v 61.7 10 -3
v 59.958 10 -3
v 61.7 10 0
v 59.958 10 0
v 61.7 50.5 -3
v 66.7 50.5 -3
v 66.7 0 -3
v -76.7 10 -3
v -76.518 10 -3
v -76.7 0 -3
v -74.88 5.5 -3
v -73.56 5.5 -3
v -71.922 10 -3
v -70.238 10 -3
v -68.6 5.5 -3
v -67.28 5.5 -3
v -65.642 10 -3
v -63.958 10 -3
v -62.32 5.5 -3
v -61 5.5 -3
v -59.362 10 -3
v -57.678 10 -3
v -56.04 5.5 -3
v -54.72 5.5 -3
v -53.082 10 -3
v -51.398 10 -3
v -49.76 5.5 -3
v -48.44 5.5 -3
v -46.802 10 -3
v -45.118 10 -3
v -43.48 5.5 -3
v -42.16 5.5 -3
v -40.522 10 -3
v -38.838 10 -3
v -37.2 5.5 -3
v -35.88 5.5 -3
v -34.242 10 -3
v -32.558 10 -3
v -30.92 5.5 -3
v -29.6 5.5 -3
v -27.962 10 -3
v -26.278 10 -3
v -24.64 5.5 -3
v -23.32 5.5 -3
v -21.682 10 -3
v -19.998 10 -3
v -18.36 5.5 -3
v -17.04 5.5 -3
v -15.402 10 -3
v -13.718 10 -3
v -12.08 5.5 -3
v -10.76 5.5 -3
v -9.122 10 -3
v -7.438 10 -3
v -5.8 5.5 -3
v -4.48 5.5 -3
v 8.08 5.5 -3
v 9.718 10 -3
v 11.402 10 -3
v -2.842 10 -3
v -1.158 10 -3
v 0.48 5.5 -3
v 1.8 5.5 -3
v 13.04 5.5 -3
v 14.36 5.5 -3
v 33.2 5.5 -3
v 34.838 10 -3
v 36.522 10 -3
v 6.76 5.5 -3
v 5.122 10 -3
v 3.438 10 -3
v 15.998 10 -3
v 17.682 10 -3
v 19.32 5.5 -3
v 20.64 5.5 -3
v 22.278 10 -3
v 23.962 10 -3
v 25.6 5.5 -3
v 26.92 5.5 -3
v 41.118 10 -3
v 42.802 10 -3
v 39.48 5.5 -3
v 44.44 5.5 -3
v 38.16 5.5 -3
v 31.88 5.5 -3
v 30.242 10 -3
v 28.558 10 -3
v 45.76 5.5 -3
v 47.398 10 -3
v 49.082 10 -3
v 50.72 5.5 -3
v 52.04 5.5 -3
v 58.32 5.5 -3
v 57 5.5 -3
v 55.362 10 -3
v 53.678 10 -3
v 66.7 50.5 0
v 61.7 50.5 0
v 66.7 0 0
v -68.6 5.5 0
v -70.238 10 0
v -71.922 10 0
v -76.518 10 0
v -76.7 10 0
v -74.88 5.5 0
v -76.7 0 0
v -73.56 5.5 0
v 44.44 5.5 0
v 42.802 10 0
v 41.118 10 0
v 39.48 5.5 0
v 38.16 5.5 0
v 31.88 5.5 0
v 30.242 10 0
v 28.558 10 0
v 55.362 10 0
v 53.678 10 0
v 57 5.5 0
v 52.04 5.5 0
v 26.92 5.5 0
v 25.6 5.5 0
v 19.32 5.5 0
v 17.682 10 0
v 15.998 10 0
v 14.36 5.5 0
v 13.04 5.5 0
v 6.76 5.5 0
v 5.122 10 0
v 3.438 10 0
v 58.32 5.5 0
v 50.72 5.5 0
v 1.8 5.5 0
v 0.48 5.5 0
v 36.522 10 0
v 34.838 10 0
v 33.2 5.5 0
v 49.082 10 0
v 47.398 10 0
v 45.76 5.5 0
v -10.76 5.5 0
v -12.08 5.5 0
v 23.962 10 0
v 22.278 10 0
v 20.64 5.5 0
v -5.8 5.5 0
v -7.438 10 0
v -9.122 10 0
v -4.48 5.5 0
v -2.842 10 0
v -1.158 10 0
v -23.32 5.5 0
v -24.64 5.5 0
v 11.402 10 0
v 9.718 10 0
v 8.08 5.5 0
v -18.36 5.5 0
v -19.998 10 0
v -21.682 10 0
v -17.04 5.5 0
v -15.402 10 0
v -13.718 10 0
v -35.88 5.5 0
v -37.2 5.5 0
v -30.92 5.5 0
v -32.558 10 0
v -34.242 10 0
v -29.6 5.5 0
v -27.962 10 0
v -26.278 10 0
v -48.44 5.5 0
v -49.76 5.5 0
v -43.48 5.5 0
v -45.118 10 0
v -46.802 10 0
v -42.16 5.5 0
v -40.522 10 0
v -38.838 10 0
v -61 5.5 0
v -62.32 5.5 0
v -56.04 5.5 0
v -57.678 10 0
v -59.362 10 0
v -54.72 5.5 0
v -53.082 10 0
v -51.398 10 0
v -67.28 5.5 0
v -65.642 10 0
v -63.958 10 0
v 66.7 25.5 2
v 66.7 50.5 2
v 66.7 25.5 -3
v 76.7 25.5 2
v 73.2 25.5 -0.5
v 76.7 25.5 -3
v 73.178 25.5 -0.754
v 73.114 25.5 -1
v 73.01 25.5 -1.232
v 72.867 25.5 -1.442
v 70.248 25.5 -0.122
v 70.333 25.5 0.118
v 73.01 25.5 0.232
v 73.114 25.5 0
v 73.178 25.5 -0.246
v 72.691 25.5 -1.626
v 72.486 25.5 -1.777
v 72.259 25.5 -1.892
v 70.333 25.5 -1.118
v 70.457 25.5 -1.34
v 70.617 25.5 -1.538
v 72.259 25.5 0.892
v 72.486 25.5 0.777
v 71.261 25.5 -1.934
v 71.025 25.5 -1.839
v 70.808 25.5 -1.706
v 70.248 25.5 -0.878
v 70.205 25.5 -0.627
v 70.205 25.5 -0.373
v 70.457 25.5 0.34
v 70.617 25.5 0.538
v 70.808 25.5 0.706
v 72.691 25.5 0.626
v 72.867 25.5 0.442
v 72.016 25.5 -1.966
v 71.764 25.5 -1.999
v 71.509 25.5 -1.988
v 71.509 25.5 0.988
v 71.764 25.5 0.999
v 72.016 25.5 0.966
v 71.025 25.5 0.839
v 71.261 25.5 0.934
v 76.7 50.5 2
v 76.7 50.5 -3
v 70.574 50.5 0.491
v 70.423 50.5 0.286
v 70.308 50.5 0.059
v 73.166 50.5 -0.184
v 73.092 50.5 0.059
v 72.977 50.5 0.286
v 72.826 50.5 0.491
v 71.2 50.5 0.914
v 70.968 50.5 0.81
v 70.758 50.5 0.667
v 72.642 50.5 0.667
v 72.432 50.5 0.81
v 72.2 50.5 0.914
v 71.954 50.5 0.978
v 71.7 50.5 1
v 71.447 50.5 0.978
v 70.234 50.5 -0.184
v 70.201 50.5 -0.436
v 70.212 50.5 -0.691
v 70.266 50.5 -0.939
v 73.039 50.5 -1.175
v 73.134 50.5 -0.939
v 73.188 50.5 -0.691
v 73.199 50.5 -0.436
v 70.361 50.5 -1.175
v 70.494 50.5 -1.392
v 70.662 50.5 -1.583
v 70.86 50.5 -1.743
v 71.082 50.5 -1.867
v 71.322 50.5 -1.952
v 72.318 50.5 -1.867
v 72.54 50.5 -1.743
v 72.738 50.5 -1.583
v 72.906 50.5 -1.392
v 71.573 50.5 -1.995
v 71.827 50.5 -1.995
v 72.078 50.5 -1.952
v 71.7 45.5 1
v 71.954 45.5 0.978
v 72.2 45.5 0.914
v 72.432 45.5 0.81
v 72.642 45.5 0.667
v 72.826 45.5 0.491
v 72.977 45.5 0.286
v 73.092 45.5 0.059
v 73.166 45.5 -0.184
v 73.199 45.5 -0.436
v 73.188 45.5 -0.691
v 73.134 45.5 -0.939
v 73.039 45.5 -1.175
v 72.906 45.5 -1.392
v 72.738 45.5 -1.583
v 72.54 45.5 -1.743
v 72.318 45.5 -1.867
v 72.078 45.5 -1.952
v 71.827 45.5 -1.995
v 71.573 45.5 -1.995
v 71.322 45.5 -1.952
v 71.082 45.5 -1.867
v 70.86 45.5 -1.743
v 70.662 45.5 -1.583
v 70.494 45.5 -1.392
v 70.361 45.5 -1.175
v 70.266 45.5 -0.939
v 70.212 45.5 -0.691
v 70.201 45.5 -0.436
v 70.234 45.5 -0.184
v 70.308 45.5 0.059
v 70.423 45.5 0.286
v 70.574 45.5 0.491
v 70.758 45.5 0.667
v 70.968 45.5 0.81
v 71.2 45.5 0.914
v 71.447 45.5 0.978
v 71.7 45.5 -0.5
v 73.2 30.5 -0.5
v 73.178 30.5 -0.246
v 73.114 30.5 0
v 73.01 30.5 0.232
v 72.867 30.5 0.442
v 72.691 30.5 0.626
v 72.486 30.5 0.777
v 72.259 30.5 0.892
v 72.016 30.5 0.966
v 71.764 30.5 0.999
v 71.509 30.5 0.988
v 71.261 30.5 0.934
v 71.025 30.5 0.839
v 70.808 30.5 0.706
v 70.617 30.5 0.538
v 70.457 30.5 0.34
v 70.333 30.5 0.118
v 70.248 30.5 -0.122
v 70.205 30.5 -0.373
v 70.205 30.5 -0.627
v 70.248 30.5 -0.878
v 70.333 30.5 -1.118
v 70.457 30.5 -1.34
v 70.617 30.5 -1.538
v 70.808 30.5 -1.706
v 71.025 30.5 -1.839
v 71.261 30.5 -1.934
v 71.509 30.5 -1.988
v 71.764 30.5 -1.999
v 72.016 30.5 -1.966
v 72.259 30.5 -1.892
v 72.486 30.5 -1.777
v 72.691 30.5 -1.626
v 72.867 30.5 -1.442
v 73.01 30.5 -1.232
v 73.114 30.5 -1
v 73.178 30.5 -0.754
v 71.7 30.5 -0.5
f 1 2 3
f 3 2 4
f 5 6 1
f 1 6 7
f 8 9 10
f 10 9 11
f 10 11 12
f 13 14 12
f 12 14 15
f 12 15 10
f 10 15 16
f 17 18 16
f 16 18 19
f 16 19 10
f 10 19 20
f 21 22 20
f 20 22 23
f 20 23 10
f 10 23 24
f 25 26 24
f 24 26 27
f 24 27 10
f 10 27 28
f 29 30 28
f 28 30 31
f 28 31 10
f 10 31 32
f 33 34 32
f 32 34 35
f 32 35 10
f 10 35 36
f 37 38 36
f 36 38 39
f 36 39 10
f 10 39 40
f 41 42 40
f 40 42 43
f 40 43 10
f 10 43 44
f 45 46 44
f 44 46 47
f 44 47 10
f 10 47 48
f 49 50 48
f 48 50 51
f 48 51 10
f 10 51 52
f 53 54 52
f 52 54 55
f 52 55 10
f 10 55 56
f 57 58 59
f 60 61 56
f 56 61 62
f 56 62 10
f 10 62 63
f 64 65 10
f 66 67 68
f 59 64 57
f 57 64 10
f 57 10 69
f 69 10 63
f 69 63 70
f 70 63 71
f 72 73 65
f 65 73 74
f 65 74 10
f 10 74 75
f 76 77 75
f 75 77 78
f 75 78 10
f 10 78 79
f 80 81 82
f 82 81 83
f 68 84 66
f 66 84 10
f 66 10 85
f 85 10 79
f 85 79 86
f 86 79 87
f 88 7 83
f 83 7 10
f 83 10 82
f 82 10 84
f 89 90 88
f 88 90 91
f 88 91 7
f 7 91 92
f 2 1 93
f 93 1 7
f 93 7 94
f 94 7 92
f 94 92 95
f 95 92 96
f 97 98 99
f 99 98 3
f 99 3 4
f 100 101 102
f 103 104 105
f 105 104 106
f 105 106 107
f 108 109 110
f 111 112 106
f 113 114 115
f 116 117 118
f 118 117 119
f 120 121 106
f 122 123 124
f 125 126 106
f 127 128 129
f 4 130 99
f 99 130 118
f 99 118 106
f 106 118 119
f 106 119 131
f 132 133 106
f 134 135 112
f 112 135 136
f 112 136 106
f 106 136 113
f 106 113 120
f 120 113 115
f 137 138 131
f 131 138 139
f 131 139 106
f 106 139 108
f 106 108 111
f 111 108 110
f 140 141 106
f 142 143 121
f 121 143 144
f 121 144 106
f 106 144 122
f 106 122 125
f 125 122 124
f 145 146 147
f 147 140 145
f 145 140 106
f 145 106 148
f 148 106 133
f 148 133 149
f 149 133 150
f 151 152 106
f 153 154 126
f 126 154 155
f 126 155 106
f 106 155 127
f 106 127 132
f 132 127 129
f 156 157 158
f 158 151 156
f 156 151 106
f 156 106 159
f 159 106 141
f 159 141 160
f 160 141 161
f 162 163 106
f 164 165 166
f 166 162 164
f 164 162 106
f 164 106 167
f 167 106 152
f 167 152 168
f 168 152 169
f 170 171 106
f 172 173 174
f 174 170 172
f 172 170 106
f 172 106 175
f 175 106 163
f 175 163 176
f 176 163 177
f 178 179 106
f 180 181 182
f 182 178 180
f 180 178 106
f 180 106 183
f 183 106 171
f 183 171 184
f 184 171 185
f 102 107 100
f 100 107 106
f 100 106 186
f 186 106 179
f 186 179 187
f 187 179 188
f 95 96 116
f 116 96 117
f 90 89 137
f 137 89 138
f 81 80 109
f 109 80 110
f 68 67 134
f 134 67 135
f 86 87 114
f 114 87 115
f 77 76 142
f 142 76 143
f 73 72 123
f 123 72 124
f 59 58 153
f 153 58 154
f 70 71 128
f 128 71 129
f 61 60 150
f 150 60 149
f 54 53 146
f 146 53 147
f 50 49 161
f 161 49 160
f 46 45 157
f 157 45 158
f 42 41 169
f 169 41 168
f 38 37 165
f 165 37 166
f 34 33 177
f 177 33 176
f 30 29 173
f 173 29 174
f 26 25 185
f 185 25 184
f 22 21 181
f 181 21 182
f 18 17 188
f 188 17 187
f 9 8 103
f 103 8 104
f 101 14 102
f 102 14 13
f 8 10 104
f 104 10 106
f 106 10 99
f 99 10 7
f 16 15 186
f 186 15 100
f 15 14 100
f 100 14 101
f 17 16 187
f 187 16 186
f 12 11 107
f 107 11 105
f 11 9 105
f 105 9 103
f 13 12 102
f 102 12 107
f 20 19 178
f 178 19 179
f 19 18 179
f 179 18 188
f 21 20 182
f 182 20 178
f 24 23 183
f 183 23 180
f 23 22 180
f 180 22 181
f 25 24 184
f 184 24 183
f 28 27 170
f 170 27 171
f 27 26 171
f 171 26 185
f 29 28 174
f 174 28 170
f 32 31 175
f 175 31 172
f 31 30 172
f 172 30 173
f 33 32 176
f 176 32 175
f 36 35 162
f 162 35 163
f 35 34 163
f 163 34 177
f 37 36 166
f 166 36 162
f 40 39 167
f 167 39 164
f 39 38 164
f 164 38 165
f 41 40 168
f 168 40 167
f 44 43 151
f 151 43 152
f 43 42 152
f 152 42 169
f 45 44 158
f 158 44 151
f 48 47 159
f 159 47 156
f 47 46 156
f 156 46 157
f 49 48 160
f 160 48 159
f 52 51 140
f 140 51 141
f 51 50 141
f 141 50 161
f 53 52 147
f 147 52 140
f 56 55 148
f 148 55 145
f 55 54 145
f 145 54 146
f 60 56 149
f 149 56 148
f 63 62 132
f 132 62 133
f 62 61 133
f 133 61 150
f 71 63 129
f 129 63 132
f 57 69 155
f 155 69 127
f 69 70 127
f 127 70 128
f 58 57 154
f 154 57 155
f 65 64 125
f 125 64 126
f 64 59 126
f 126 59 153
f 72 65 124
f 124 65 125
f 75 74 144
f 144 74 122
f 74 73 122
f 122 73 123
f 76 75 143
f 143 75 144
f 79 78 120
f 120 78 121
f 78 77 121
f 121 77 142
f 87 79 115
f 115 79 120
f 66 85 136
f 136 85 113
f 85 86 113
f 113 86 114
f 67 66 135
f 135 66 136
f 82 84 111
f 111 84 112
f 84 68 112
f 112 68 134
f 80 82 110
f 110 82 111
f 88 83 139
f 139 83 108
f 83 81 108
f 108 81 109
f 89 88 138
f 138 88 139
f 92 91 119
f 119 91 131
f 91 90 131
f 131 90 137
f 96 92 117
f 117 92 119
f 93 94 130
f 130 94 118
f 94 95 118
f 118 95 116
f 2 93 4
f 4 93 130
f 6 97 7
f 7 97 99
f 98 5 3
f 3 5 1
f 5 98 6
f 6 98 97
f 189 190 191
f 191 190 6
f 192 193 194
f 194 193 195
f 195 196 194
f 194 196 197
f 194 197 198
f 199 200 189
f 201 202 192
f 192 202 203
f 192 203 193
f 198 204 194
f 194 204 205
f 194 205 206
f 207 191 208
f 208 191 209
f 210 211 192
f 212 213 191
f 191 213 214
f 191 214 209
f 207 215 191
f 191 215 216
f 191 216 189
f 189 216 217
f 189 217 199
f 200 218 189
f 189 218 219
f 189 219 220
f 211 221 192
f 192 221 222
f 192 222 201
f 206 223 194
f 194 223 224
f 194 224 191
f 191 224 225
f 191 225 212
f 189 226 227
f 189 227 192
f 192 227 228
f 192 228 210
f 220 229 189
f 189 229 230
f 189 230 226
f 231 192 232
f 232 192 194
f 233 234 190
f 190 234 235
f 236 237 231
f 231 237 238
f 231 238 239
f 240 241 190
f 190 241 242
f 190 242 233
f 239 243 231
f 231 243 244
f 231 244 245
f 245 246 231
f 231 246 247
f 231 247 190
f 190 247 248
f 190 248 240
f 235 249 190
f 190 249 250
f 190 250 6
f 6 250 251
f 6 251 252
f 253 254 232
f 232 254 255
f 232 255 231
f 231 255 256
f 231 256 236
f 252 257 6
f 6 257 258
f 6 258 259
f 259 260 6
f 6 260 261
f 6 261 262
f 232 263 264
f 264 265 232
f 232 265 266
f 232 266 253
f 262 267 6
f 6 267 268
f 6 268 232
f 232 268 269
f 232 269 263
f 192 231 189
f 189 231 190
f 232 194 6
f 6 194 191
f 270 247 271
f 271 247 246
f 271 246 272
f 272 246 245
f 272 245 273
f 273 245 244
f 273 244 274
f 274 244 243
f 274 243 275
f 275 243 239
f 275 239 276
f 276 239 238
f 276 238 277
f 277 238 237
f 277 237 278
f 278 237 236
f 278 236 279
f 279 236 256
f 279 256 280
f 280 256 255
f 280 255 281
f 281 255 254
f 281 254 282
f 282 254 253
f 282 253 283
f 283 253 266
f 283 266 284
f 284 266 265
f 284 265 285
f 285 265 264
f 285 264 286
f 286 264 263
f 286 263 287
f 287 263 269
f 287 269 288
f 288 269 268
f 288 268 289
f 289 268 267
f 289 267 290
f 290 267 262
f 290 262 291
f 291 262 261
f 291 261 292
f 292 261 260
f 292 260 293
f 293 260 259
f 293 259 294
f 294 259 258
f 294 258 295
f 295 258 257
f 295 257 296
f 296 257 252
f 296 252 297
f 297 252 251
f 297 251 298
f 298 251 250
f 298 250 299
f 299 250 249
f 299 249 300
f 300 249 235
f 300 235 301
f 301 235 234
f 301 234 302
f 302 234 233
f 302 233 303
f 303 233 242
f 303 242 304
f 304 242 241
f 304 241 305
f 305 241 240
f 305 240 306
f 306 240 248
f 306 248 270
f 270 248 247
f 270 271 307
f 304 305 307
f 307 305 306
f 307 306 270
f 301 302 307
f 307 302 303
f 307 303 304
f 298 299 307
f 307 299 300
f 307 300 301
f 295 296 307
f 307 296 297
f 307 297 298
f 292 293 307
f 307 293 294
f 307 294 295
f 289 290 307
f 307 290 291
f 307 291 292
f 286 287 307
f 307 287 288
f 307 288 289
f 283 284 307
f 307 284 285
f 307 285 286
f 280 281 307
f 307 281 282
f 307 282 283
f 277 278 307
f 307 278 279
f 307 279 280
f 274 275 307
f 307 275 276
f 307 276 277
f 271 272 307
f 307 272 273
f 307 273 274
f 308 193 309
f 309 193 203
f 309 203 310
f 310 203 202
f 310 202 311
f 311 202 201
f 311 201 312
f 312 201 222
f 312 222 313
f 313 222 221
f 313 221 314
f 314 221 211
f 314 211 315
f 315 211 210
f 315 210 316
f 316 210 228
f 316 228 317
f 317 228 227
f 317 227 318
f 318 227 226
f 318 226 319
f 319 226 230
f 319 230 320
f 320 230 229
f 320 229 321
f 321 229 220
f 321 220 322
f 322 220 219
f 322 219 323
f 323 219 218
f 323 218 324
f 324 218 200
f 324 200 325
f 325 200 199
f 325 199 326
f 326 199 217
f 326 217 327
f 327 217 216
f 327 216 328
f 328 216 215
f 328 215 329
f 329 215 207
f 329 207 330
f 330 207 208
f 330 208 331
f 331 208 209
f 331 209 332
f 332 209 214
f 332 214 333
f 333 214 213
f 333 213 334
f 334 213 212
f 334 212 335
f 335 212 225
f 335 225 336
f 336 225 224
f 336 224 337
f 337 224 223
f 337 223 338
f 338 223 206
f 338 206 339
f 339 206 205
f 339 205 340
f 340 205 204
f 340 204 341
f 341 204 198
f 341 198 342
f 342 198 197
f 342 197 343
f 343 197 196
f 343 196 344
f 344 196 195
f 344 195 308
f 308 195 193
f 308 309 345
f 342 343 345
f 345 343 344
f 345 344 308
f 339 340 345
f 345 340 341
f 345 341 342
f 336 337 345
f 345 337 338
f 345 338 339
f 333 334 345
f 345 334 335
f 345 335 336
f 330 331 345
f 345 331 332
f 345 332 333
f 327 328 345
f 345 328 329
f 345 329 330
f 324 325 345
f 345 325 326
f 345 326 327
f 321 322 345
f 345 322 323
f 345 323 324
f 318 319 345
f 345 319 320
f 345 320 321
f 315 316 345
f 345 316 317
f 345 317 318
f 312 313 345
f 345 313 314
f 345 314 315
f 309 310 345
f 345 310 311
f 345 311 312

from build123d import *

# Parameters (mm, degrees)
SKETCH_1_W                 = 153.4
SKETCH_1_H                 = 10
EXTRUDE_1_DEPTH            = 3
CUT_EXTRUDE_1_DEPTH        = 4
PATTERN_LINEAR_1_COUNT     = 21
PATTERN_LINEAR_1_PITCH     = 6.28
PATTERN_LINEAR_1_COL_COUNT = 2
PATTERN_LINEAR_1_COL_PITCH = 6.28
SKETCH_3_W                 = 10
SKETCH_3_H                 = 3
CUT_EXTRUDE_2_DEPTH        = 11
SKETCH_4_W                 = 5
SKETCH_4_H                 = 3
EXTRUDE_2_DEPTH            = 40.5
SKETCH_5_W                 = 10
SKETCH_5_H                 = 25
EXTRUDE_3_DEPTH            = 5
SKETCH_6_R                 = 1.5
CUT_EXTRUDE_3_DEPTH        = 5
SKETCH_7_R                 = 1.5
CUT_EXTRUDE_4_DEPTH        = 5


with BuildPart() as part:
    # 스케치1 → 보스-돌출1 (new body)
    with BuildSketch(Plane.XY):
        with Locations((0, 5)):
            Rectangle(SKETCH_1_W, SKETCH_1_H)
    extrude(amount=-EXTRUDE_1_DEPTH)

    # 스케치2 → 컷-돌출1 (cut, through all)
    with BuildSketch(Plane.XY):
        Polygon((-68.600074414, 5.5), (-67.279925586, 5.5), (-65.642059531, 10), (-70.237940469, 10), align=None)
    cut_extrude_1 = extrude(amount=-CUT_EXTRUDE_1_DEPTH, mode=Mode.SUBTRACT)

    # 선형 패턴1: 컷-돌출1 ×21
    with Locations(*[(i * PATTERN_LINEAR_1_PITCH, 0, 0) for i in range(1, PATTERN_LINEAR_1_COUNT)]):
        add(cut_extrude_1, mode=Mode.SUBTRACT)

    # 선형 패턴1 col: 컷-돌출1 ×2
    with Locations(*[(-i * PATTERN_LINEAR_1_COL_PITCH, 0, 0) for i in range(1, PATTERN_LINEAR_1_COL_COUNT)]):
        add(cut_extrude_1, mode=Mode.SUBTRACT)

    # 스케치3 → 컷-돌출2 (cut, through all)
    with BuildSketch(Plane.XZ):
        with Locations((71.7, -1.5)):
            Rectangle(SKETCH_3_W, SKETCH_3_H)
    extrude(amount=-CUT_EXTRUDE_2_DEPTH, mode=Mode.SUBTRACT)

    # 스케치4 → 보스-돌출2 (add)
    with BuildSketch(Plane(origin=(0, 10, 0), x_dir=(1, 0, 0), z_dir=(0, 1, 0))):
        with Locations((64.2, 1.5)):
            Rectangle(SKETCH_4_W, SKETCH_4_H)
    extrude(amount=EXTRUDE_2_DEPTH)


with BuildPart() as body_2:
    # 스케치5 → 보스-돌출3 (new body)
    with BuildSketch(Plane(origin=(0, 0, -3), x_dir=(-1, 0, 0), z_dir=(0, 0, -1))):
        with Locations((-71.7, 38)):
            Rectangle(SKETCH_5_W, SKETCH_5_H)
    extrude(amount=-EXTRUDE_3_DEPTH)

    # 스케치6 → 컷-돌출3 (cut)
    with BuildSketch(Plane(origin=(0, 50.5, 0), x_dir=(1, 0, 0), z_dir=(0, 1, 0))):
        with Locations((71.7, 0.5)):
            Circle(SKETCH_6_R)
    extrude(amount=-CUT_EXTRUDE_3_DEPTH, mode=Mode.SUBTRACT)

    # 스케치7 → 컷-돌출4 (cut)
    with BuildSketch(Plane(origin=(0, 25.5, 0), x_dir=(-1, 0, 0), z_dir=(0, -1, 0))):
        with Locations((-71.7, 0.5)):
            Circle(SKETCH_7_R)
    extrude(amount=-CUT_EXTRUDE_4_DEPTH, mode=Mode.SUBTRACT)


solid = Compound([part.part, body_2.part])
